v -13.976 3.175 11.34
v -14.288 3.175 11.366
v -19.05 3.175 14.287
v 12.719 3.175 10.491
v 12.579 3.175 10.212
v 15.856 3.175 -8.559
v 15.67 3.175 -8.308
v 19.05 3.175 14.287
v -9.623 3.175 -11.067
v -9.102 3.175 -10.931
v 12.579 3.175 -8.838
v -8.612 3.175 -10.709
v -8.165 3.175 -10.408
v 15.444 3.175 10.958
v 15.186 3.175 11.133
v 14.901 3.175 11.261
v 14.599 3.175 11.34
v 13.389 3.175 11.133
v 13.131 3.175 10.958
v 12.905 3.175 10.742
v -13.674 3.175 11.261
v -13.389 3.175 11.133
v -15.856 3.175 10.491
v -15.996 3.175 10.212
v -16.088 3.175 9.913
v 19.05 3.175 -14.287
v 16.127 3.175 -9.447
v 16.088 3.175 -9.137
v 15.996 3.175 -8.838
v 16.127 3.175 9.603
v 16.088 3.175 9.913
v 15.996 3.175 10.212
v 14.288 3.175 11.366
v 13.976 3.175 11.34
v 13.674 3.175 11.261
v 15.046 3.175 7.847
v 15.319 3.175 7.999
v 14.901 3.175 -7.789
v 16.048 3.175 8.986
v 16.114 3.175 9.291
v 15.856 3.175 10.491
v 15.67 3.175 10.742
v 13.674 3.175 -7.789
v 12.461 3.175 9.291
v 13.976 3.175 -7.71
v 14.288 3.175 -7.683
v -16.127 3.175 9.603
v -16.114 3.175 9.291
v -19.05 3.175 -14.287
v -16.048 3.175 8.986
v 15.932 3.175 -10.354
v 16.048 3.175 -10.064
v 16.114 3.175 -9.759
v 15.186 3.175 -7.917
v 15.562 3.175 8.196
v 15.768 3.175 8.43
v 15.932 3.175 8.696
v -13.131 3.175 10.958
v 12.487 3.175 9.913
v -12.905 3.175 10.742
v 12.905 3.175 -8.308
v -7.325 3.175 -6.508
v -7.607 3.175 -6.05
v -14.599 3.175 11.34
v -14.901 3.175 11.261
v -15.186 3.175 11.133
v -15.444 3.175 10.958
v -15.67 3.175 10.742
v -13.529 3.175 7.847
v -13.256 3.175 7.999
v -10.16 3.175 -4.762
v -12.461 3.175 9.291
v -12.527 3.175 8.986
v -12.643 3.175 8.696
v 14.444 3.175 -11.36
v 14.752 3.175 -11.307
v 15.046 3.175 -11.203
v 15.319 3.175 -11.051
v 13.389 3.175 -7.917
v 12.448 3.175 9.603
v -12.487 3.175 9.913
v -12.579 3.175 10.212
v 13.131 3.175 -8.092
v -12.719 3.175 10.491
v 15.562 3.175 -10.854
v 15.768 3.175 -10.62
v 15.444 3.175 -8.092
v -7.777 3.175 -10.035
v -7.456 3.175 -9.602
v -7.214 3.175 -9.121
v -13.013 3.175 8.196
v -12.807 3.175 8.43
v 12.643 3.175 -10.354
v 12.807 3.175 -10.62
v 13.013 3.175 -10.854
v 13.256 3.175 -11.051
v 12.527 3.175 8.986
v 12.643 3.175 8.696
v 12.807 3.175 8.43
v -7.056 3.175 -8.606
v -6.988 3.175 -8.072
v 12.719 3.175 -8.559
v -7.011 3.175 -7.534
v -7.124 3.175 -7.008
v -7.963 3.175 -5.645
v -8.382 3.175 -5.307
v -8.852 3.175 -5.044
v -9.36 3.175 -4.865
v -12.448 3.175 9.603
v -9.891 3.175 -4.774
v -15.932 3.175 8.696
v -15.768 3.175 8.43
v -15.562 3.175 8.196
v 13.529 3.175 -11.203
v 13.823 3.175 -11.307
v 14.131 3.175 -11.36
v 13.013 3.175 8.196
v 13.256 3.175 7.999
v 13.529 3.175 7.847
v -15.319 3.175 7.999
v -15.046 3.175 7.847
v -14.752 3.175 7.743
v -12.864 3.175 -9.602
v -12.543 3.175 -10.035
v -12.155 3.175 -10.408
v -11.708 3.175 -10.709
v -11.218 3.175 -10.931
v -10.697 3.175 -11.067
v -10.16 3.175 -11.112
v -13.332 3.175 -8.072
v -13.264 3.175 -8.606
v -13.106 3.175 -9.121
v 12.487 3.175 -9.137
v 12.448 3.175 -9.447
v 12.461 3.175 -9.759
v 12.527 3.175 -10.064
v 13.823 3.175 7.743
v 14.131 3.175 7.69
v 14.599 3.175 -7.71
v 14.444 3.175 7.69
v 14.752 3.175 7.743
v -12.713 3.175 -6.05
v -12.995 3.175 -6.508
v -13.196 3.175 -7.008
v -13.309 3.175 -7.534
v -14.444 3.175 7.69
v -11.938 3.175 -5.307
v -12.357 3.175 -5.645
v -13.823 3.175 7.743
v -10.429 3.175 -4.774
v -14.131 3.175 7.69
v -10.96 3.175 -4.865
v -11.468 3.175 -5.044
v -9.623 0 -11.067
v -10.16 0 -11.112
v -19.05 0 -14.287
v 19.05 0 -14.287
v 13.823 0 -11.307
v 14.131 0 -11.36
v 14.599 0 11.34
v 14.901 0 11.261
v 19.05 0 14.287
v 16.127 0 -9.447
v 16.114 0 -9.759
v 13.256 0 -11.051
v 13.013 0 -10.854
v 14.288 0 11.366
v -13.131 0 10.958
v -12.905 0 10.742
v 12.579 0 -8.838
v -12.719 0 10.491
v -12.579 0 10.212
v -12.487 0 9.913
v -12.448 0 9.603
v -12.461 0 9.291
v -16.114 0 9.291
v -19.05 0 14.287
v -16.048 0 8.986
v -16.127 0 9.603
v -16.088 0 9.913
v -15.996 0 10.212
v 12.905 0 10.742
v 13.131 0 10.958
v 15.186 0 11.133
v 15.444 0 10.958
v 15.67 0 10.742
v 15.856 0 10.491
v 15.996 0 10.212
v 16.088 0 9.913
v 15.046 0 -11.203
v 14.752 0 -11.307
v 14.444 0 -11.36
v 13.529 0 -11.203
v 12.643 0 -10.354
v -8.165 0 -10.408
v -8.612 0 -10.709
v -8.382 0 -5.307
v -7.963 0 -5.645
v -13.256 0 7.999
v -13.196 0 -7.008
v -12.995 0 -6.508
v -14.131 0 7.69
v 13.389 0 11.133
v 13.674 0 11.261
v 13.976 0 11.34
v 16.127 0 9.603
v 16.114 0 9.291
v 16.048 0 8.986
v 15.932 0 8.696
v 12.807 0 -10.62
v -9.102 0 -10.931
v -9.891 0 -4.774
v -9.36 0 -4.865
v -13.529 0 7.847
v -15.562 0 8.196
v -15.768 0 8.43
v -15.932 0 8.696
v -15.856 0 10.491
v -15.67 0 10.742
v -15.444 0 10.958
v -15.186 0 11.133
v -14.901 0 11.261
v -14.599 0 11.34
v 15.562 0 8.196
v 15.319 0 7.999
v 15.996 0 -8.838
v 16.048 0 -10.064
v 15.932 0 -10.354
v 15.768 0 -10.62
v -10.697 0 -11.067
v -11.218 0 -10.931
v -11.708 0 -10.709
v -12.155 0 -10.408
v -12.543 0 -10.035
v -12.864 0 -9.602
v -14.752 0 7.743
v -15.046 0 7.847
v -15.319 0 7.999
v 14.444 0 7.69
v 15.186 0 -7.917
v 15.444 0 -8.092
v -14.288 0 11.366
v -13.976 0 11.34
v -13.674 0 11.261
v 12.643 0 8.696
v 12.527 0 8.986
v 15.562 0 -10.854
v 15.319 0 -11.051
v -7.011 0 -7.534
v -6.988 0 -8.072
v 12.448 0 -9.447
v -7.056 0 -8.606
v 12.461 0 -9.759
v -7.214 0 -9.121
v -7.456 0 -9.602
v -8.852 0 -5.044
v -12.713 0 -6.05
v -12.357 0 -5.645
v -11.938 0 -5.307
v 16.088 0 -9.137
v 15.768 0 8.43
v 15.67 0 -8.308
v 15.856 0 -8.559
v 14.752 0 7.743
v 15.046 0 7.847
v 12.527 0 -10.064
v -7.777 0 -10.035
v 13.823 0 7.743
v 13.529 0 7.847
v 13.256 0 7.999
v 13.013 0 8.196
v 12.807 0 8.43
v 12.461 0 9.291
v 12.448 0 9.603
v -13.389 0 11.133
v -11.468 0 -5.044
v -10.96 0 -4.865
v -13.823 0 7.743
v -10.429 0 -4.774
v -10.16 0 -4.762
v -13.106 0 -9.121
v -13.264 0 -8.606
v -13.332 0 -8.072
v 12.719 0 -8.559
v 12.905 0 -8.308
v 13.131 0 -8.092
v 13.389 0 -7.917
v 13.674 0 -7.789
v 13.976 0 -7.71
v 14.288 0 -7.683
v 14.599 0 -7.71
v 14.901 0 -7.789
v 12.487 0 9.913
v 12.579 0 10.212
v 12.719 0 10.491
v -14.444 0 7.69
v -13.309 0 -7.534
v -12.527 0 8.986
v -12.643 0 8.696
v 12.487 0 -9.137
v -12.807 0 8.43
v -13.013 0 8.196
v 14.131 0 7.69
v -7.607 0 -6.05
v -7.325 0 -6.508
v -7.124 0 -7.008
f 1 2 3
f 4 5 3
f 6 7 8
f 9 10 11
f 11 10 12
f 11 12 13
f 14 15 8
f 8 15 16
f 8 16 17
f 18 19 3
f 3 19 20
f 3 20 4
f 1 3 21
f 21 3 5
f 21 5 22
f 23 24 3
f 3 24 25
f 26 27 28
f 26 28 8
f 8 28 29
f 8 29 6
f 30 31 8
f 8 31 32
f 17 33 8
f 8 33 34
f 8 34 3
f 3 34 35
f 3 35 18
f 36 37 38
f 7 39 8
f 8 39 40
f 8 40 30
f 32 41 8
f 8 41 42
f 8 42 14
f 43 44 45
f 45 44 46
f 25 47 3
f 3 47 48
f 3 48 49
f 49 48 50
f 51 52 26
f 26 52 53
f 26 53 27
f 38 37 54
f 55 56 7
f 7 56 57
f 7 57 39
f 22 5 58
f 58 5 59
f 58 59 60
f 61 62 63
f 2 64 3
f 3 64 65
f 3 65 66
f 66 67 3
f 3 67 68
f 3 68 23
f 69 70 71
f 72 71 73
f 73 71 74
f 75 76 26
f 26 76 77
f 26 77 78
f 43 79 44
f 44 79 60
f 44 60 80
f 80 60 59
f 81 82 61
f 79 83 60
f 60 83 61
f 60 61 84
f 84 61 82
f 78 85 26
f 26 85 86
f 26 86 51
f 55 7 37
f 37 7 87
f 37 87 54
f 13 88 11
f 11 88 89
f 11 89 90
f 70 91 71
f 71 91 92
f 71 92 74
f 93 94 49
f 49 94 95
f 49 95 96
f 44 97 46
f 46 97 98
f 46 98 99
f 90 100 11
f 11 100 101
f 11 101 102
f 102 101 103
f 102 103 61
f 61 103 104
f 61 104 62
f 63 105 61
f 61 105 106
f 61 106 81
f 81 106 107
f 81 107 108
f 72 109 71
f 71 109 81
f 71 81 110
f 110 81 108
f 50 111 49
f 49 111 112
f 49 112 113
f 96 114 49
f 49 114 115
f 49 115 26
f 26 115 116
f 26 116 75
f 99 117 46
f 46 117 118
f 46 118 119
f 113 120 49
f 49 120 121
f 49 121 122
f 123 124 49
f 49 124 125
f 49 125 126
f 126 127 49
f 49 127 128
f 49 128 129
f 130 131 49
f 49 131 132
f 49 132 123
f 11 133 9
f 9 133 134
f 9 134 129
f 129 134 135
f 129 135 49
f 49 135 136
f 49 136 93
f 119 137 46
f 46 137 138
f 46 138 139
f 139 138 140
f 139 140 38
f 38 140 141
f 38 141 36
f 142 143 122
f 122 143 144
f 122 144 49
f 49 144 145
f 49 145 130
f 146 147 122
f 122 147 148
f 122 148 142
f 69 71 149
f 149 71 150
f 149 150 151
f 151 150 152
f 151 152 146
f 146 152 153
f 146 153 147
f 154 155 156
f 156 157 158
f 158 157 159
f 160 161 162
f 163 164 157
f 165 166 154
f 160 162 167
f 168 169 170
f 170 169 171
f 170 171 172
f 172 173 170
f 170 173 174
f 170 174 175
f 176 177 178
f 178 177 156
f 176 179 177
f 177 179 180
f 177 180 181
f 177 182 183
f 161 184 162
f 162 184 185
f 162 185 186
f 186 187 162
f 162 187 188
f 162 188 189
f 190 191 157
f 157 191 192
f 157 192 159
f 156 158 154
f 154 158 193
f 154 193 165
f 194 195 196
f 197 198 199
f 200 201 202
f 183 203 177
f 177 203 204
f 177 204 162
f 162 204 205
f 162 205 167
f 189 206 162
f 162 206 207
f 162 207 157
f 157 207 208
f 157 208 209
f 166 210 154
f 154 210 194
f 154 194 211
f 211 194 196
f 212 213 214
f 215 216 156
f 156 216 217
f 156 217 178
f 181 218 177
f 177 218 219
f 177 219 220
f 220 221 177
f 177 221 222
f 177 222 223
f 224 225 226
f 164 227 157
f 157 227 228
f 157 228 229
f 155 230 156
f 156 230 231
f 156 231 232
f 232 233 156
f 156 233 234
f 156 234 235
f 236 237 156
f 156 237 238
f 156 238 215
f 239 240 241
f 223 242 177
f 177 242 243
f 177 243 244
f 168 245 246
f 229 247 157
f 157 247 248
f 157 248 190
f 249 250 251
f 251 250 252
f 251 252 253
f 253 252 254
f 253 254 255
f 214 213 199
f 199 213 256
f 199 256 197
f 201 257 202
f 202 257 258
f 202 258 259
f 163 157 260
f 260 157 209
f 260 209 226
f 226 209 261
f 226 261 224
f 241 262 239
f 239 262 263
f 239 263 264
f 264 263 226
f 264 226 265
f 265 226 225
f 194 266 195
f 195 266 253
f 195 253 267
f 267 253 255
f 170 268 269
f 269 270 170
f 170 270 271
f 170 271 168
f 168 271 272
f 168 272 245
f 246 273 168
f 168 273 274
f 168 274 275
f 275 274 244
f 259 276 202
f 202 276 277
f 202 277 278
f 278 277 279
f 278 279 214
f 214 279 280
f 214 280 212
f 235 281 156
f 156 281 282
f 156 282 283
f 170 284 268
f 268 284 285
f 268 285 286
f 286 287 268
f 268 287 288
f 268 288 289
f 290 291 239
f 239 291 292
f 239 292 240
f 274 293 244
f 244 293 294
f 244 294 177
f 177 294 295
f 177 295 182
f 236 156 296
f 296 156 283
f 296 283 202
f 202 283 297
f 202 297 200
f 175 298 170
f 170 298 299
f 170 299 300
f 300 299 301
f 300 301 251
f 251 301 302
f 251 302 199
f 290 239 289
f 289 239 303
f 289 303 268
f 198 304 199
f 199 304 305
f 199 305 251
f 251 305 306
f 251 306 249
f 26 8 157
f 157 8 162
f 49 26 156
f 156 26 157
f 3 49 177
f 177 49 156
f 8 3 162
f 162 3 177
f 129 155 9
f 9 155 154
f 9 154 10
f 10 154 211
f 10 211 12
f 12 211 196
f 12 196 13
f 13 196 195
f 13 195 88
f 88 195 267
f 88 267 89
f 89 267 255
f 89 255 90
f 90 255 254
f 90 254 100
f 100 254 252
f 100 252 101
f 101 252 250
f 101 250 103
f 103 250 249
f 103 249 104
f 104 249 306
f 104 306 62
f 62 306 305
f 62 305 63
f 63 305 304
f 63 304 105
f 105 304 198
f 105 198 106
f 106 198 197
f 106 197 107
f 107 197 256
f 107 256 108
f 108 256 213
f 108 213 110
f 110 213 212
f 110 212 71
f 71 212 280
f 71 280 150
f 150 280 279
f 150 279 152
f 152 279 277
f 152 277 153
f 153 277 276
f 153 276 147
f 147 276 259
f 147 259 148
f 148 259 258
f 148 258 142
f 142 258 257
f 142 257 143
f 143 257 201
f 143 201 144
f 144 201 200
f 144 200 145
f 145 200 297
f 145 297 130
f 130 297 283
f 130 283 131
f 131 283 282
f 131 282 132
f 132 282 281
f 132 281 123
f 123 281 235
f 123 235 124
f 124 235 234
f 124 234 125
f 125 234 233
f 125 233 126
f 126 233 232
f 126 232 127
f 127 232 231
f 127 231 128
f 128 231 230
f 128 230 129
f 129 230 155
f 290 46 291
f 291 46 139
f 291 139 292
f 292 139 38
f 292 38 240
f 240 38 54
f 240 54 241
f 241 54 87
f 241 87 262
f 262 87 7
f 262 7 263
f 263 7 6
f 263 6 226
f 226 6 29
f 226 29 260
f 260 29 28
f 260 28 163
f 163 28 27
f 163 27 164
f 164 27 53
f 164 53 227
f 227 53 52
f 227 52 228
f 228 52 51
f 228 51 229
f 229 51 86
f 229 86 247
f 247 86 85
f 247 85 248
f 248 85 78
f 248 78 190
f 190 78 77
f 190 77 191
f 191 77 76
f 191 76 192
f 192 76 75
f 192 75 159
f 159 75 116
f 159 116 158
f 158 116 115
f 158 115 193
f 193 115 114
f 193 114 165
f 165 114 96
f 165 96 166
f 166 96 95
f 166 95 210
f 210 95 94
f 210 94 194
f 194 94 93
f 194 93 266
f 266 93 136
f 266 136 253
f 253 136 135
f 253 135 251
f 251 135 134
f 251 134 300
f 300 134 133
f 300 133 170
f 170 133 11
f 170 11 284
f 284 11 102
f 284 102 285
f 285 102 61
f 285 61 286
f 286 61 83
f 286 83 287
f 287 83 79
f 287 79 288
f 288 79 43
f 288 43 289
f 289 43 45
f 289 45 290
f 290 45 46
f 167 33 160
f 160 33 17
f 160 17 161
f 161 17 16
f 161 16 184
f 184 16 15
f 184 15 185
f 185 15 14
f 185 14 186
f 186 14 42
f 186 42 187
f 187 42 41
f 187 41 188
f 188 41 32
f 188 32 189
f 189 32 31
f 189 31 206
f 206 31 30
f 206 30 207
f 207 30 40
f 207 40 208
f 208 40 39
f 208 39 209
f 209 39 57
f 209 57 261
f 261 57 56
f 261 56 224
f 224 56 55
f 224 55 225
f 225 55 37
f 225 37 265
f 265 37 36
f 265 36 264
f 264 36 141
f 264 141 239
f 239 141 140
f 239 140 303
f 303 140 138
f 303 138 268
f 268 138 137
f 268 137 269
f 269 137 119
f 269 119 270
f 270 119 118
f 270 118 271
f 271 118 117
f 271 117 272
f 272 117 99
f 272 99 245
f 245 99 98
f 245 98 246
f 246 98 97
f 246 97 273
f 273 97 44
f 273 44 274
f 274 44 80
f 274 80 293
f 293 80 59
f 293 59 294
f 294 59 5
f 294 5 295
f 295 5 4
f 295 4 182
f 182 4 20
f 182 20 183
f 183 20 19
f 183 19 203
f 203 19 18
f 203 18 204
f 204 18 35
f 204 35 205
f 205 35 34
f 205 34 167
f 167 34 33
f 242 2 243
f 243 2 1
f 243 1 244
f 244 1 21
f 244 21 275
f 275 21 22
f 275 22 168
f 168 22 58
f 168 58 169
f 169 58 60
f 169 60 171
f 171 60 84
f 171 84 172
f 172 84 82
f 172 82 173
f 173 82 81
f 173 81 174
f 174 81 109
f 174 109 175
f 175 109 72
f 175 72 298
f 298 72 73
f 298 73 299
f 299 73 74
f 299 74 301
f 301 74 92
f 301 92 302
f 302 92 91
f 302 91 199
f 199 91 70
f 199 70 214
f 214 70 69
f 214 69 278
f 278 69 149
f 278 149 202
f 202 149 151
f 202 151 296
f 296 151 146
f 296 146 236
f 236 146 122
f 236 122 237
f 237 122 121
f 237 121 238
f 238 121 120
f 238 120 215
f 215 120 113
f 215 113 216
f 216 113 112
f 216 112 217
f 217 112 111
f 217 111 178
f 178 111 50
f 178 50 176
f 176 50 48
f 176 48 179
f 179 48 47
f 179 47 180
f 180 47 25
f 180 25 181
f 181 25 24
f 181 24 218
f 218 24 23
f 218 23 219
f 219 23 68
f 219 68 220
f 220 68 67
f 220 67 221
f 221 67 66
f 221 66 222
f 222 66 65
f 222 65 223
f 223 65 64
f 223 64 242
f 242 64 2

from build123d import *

# Parameters (mm, degrees)
SKETCH1_W           = 38.1
SKETCH1_H           = 28.575
SKETCH1_R           = 3.175
BOSS_EXTRUDE1_DEPTH = 3.175
SKETCH2_R           = 1.8415
CUT_EXTRUDE1_DEPTH  = 25.023234196


with BuildPart() as part:
    # Sketch1 → Boss-Extrude1 (new body)
    with BuildSketch(Plane(origin=(0, 0, 0), x_dir=(1, 0, 0), z_dir=(0, 1, 0))):
        Rectangle(SKETCH1_W, SKETCH1_H)
        with Locations(Location((-10.16, 7.9375, 0), (0, 0, 270))):
            Circle(SKETCH1_R, mode=Mode.SUBTRACT)
    extrude(amount=BOSS_EXTRUDE1_DEPTH)

    # Sketch2 → Cut-Extrude1 (cut, through all)
    with BuildSketch(Plane(origin=(0, 3.175, 0), x_dir=(1, 0, 0), z_dir=(0, 1, 0))):
        with Locations(Location((-14.2875, -9.525, 0), (0, 0, 270))):
            Circle(SKETCH2_R)
        with Locations(Location((14.2875, -9.525, 0), (0, 0, 270))):
            Circle(SKETCH2_R)
        with Locations(Location((14.2875, 9.525, 0), (0, 0, 270))):
            Circle(SKETCH2_R)
    extrude(amount=-CUT_EXTRUDE1_DEPTH, mode=Mode.SUBTRACT)


solid = part.part
